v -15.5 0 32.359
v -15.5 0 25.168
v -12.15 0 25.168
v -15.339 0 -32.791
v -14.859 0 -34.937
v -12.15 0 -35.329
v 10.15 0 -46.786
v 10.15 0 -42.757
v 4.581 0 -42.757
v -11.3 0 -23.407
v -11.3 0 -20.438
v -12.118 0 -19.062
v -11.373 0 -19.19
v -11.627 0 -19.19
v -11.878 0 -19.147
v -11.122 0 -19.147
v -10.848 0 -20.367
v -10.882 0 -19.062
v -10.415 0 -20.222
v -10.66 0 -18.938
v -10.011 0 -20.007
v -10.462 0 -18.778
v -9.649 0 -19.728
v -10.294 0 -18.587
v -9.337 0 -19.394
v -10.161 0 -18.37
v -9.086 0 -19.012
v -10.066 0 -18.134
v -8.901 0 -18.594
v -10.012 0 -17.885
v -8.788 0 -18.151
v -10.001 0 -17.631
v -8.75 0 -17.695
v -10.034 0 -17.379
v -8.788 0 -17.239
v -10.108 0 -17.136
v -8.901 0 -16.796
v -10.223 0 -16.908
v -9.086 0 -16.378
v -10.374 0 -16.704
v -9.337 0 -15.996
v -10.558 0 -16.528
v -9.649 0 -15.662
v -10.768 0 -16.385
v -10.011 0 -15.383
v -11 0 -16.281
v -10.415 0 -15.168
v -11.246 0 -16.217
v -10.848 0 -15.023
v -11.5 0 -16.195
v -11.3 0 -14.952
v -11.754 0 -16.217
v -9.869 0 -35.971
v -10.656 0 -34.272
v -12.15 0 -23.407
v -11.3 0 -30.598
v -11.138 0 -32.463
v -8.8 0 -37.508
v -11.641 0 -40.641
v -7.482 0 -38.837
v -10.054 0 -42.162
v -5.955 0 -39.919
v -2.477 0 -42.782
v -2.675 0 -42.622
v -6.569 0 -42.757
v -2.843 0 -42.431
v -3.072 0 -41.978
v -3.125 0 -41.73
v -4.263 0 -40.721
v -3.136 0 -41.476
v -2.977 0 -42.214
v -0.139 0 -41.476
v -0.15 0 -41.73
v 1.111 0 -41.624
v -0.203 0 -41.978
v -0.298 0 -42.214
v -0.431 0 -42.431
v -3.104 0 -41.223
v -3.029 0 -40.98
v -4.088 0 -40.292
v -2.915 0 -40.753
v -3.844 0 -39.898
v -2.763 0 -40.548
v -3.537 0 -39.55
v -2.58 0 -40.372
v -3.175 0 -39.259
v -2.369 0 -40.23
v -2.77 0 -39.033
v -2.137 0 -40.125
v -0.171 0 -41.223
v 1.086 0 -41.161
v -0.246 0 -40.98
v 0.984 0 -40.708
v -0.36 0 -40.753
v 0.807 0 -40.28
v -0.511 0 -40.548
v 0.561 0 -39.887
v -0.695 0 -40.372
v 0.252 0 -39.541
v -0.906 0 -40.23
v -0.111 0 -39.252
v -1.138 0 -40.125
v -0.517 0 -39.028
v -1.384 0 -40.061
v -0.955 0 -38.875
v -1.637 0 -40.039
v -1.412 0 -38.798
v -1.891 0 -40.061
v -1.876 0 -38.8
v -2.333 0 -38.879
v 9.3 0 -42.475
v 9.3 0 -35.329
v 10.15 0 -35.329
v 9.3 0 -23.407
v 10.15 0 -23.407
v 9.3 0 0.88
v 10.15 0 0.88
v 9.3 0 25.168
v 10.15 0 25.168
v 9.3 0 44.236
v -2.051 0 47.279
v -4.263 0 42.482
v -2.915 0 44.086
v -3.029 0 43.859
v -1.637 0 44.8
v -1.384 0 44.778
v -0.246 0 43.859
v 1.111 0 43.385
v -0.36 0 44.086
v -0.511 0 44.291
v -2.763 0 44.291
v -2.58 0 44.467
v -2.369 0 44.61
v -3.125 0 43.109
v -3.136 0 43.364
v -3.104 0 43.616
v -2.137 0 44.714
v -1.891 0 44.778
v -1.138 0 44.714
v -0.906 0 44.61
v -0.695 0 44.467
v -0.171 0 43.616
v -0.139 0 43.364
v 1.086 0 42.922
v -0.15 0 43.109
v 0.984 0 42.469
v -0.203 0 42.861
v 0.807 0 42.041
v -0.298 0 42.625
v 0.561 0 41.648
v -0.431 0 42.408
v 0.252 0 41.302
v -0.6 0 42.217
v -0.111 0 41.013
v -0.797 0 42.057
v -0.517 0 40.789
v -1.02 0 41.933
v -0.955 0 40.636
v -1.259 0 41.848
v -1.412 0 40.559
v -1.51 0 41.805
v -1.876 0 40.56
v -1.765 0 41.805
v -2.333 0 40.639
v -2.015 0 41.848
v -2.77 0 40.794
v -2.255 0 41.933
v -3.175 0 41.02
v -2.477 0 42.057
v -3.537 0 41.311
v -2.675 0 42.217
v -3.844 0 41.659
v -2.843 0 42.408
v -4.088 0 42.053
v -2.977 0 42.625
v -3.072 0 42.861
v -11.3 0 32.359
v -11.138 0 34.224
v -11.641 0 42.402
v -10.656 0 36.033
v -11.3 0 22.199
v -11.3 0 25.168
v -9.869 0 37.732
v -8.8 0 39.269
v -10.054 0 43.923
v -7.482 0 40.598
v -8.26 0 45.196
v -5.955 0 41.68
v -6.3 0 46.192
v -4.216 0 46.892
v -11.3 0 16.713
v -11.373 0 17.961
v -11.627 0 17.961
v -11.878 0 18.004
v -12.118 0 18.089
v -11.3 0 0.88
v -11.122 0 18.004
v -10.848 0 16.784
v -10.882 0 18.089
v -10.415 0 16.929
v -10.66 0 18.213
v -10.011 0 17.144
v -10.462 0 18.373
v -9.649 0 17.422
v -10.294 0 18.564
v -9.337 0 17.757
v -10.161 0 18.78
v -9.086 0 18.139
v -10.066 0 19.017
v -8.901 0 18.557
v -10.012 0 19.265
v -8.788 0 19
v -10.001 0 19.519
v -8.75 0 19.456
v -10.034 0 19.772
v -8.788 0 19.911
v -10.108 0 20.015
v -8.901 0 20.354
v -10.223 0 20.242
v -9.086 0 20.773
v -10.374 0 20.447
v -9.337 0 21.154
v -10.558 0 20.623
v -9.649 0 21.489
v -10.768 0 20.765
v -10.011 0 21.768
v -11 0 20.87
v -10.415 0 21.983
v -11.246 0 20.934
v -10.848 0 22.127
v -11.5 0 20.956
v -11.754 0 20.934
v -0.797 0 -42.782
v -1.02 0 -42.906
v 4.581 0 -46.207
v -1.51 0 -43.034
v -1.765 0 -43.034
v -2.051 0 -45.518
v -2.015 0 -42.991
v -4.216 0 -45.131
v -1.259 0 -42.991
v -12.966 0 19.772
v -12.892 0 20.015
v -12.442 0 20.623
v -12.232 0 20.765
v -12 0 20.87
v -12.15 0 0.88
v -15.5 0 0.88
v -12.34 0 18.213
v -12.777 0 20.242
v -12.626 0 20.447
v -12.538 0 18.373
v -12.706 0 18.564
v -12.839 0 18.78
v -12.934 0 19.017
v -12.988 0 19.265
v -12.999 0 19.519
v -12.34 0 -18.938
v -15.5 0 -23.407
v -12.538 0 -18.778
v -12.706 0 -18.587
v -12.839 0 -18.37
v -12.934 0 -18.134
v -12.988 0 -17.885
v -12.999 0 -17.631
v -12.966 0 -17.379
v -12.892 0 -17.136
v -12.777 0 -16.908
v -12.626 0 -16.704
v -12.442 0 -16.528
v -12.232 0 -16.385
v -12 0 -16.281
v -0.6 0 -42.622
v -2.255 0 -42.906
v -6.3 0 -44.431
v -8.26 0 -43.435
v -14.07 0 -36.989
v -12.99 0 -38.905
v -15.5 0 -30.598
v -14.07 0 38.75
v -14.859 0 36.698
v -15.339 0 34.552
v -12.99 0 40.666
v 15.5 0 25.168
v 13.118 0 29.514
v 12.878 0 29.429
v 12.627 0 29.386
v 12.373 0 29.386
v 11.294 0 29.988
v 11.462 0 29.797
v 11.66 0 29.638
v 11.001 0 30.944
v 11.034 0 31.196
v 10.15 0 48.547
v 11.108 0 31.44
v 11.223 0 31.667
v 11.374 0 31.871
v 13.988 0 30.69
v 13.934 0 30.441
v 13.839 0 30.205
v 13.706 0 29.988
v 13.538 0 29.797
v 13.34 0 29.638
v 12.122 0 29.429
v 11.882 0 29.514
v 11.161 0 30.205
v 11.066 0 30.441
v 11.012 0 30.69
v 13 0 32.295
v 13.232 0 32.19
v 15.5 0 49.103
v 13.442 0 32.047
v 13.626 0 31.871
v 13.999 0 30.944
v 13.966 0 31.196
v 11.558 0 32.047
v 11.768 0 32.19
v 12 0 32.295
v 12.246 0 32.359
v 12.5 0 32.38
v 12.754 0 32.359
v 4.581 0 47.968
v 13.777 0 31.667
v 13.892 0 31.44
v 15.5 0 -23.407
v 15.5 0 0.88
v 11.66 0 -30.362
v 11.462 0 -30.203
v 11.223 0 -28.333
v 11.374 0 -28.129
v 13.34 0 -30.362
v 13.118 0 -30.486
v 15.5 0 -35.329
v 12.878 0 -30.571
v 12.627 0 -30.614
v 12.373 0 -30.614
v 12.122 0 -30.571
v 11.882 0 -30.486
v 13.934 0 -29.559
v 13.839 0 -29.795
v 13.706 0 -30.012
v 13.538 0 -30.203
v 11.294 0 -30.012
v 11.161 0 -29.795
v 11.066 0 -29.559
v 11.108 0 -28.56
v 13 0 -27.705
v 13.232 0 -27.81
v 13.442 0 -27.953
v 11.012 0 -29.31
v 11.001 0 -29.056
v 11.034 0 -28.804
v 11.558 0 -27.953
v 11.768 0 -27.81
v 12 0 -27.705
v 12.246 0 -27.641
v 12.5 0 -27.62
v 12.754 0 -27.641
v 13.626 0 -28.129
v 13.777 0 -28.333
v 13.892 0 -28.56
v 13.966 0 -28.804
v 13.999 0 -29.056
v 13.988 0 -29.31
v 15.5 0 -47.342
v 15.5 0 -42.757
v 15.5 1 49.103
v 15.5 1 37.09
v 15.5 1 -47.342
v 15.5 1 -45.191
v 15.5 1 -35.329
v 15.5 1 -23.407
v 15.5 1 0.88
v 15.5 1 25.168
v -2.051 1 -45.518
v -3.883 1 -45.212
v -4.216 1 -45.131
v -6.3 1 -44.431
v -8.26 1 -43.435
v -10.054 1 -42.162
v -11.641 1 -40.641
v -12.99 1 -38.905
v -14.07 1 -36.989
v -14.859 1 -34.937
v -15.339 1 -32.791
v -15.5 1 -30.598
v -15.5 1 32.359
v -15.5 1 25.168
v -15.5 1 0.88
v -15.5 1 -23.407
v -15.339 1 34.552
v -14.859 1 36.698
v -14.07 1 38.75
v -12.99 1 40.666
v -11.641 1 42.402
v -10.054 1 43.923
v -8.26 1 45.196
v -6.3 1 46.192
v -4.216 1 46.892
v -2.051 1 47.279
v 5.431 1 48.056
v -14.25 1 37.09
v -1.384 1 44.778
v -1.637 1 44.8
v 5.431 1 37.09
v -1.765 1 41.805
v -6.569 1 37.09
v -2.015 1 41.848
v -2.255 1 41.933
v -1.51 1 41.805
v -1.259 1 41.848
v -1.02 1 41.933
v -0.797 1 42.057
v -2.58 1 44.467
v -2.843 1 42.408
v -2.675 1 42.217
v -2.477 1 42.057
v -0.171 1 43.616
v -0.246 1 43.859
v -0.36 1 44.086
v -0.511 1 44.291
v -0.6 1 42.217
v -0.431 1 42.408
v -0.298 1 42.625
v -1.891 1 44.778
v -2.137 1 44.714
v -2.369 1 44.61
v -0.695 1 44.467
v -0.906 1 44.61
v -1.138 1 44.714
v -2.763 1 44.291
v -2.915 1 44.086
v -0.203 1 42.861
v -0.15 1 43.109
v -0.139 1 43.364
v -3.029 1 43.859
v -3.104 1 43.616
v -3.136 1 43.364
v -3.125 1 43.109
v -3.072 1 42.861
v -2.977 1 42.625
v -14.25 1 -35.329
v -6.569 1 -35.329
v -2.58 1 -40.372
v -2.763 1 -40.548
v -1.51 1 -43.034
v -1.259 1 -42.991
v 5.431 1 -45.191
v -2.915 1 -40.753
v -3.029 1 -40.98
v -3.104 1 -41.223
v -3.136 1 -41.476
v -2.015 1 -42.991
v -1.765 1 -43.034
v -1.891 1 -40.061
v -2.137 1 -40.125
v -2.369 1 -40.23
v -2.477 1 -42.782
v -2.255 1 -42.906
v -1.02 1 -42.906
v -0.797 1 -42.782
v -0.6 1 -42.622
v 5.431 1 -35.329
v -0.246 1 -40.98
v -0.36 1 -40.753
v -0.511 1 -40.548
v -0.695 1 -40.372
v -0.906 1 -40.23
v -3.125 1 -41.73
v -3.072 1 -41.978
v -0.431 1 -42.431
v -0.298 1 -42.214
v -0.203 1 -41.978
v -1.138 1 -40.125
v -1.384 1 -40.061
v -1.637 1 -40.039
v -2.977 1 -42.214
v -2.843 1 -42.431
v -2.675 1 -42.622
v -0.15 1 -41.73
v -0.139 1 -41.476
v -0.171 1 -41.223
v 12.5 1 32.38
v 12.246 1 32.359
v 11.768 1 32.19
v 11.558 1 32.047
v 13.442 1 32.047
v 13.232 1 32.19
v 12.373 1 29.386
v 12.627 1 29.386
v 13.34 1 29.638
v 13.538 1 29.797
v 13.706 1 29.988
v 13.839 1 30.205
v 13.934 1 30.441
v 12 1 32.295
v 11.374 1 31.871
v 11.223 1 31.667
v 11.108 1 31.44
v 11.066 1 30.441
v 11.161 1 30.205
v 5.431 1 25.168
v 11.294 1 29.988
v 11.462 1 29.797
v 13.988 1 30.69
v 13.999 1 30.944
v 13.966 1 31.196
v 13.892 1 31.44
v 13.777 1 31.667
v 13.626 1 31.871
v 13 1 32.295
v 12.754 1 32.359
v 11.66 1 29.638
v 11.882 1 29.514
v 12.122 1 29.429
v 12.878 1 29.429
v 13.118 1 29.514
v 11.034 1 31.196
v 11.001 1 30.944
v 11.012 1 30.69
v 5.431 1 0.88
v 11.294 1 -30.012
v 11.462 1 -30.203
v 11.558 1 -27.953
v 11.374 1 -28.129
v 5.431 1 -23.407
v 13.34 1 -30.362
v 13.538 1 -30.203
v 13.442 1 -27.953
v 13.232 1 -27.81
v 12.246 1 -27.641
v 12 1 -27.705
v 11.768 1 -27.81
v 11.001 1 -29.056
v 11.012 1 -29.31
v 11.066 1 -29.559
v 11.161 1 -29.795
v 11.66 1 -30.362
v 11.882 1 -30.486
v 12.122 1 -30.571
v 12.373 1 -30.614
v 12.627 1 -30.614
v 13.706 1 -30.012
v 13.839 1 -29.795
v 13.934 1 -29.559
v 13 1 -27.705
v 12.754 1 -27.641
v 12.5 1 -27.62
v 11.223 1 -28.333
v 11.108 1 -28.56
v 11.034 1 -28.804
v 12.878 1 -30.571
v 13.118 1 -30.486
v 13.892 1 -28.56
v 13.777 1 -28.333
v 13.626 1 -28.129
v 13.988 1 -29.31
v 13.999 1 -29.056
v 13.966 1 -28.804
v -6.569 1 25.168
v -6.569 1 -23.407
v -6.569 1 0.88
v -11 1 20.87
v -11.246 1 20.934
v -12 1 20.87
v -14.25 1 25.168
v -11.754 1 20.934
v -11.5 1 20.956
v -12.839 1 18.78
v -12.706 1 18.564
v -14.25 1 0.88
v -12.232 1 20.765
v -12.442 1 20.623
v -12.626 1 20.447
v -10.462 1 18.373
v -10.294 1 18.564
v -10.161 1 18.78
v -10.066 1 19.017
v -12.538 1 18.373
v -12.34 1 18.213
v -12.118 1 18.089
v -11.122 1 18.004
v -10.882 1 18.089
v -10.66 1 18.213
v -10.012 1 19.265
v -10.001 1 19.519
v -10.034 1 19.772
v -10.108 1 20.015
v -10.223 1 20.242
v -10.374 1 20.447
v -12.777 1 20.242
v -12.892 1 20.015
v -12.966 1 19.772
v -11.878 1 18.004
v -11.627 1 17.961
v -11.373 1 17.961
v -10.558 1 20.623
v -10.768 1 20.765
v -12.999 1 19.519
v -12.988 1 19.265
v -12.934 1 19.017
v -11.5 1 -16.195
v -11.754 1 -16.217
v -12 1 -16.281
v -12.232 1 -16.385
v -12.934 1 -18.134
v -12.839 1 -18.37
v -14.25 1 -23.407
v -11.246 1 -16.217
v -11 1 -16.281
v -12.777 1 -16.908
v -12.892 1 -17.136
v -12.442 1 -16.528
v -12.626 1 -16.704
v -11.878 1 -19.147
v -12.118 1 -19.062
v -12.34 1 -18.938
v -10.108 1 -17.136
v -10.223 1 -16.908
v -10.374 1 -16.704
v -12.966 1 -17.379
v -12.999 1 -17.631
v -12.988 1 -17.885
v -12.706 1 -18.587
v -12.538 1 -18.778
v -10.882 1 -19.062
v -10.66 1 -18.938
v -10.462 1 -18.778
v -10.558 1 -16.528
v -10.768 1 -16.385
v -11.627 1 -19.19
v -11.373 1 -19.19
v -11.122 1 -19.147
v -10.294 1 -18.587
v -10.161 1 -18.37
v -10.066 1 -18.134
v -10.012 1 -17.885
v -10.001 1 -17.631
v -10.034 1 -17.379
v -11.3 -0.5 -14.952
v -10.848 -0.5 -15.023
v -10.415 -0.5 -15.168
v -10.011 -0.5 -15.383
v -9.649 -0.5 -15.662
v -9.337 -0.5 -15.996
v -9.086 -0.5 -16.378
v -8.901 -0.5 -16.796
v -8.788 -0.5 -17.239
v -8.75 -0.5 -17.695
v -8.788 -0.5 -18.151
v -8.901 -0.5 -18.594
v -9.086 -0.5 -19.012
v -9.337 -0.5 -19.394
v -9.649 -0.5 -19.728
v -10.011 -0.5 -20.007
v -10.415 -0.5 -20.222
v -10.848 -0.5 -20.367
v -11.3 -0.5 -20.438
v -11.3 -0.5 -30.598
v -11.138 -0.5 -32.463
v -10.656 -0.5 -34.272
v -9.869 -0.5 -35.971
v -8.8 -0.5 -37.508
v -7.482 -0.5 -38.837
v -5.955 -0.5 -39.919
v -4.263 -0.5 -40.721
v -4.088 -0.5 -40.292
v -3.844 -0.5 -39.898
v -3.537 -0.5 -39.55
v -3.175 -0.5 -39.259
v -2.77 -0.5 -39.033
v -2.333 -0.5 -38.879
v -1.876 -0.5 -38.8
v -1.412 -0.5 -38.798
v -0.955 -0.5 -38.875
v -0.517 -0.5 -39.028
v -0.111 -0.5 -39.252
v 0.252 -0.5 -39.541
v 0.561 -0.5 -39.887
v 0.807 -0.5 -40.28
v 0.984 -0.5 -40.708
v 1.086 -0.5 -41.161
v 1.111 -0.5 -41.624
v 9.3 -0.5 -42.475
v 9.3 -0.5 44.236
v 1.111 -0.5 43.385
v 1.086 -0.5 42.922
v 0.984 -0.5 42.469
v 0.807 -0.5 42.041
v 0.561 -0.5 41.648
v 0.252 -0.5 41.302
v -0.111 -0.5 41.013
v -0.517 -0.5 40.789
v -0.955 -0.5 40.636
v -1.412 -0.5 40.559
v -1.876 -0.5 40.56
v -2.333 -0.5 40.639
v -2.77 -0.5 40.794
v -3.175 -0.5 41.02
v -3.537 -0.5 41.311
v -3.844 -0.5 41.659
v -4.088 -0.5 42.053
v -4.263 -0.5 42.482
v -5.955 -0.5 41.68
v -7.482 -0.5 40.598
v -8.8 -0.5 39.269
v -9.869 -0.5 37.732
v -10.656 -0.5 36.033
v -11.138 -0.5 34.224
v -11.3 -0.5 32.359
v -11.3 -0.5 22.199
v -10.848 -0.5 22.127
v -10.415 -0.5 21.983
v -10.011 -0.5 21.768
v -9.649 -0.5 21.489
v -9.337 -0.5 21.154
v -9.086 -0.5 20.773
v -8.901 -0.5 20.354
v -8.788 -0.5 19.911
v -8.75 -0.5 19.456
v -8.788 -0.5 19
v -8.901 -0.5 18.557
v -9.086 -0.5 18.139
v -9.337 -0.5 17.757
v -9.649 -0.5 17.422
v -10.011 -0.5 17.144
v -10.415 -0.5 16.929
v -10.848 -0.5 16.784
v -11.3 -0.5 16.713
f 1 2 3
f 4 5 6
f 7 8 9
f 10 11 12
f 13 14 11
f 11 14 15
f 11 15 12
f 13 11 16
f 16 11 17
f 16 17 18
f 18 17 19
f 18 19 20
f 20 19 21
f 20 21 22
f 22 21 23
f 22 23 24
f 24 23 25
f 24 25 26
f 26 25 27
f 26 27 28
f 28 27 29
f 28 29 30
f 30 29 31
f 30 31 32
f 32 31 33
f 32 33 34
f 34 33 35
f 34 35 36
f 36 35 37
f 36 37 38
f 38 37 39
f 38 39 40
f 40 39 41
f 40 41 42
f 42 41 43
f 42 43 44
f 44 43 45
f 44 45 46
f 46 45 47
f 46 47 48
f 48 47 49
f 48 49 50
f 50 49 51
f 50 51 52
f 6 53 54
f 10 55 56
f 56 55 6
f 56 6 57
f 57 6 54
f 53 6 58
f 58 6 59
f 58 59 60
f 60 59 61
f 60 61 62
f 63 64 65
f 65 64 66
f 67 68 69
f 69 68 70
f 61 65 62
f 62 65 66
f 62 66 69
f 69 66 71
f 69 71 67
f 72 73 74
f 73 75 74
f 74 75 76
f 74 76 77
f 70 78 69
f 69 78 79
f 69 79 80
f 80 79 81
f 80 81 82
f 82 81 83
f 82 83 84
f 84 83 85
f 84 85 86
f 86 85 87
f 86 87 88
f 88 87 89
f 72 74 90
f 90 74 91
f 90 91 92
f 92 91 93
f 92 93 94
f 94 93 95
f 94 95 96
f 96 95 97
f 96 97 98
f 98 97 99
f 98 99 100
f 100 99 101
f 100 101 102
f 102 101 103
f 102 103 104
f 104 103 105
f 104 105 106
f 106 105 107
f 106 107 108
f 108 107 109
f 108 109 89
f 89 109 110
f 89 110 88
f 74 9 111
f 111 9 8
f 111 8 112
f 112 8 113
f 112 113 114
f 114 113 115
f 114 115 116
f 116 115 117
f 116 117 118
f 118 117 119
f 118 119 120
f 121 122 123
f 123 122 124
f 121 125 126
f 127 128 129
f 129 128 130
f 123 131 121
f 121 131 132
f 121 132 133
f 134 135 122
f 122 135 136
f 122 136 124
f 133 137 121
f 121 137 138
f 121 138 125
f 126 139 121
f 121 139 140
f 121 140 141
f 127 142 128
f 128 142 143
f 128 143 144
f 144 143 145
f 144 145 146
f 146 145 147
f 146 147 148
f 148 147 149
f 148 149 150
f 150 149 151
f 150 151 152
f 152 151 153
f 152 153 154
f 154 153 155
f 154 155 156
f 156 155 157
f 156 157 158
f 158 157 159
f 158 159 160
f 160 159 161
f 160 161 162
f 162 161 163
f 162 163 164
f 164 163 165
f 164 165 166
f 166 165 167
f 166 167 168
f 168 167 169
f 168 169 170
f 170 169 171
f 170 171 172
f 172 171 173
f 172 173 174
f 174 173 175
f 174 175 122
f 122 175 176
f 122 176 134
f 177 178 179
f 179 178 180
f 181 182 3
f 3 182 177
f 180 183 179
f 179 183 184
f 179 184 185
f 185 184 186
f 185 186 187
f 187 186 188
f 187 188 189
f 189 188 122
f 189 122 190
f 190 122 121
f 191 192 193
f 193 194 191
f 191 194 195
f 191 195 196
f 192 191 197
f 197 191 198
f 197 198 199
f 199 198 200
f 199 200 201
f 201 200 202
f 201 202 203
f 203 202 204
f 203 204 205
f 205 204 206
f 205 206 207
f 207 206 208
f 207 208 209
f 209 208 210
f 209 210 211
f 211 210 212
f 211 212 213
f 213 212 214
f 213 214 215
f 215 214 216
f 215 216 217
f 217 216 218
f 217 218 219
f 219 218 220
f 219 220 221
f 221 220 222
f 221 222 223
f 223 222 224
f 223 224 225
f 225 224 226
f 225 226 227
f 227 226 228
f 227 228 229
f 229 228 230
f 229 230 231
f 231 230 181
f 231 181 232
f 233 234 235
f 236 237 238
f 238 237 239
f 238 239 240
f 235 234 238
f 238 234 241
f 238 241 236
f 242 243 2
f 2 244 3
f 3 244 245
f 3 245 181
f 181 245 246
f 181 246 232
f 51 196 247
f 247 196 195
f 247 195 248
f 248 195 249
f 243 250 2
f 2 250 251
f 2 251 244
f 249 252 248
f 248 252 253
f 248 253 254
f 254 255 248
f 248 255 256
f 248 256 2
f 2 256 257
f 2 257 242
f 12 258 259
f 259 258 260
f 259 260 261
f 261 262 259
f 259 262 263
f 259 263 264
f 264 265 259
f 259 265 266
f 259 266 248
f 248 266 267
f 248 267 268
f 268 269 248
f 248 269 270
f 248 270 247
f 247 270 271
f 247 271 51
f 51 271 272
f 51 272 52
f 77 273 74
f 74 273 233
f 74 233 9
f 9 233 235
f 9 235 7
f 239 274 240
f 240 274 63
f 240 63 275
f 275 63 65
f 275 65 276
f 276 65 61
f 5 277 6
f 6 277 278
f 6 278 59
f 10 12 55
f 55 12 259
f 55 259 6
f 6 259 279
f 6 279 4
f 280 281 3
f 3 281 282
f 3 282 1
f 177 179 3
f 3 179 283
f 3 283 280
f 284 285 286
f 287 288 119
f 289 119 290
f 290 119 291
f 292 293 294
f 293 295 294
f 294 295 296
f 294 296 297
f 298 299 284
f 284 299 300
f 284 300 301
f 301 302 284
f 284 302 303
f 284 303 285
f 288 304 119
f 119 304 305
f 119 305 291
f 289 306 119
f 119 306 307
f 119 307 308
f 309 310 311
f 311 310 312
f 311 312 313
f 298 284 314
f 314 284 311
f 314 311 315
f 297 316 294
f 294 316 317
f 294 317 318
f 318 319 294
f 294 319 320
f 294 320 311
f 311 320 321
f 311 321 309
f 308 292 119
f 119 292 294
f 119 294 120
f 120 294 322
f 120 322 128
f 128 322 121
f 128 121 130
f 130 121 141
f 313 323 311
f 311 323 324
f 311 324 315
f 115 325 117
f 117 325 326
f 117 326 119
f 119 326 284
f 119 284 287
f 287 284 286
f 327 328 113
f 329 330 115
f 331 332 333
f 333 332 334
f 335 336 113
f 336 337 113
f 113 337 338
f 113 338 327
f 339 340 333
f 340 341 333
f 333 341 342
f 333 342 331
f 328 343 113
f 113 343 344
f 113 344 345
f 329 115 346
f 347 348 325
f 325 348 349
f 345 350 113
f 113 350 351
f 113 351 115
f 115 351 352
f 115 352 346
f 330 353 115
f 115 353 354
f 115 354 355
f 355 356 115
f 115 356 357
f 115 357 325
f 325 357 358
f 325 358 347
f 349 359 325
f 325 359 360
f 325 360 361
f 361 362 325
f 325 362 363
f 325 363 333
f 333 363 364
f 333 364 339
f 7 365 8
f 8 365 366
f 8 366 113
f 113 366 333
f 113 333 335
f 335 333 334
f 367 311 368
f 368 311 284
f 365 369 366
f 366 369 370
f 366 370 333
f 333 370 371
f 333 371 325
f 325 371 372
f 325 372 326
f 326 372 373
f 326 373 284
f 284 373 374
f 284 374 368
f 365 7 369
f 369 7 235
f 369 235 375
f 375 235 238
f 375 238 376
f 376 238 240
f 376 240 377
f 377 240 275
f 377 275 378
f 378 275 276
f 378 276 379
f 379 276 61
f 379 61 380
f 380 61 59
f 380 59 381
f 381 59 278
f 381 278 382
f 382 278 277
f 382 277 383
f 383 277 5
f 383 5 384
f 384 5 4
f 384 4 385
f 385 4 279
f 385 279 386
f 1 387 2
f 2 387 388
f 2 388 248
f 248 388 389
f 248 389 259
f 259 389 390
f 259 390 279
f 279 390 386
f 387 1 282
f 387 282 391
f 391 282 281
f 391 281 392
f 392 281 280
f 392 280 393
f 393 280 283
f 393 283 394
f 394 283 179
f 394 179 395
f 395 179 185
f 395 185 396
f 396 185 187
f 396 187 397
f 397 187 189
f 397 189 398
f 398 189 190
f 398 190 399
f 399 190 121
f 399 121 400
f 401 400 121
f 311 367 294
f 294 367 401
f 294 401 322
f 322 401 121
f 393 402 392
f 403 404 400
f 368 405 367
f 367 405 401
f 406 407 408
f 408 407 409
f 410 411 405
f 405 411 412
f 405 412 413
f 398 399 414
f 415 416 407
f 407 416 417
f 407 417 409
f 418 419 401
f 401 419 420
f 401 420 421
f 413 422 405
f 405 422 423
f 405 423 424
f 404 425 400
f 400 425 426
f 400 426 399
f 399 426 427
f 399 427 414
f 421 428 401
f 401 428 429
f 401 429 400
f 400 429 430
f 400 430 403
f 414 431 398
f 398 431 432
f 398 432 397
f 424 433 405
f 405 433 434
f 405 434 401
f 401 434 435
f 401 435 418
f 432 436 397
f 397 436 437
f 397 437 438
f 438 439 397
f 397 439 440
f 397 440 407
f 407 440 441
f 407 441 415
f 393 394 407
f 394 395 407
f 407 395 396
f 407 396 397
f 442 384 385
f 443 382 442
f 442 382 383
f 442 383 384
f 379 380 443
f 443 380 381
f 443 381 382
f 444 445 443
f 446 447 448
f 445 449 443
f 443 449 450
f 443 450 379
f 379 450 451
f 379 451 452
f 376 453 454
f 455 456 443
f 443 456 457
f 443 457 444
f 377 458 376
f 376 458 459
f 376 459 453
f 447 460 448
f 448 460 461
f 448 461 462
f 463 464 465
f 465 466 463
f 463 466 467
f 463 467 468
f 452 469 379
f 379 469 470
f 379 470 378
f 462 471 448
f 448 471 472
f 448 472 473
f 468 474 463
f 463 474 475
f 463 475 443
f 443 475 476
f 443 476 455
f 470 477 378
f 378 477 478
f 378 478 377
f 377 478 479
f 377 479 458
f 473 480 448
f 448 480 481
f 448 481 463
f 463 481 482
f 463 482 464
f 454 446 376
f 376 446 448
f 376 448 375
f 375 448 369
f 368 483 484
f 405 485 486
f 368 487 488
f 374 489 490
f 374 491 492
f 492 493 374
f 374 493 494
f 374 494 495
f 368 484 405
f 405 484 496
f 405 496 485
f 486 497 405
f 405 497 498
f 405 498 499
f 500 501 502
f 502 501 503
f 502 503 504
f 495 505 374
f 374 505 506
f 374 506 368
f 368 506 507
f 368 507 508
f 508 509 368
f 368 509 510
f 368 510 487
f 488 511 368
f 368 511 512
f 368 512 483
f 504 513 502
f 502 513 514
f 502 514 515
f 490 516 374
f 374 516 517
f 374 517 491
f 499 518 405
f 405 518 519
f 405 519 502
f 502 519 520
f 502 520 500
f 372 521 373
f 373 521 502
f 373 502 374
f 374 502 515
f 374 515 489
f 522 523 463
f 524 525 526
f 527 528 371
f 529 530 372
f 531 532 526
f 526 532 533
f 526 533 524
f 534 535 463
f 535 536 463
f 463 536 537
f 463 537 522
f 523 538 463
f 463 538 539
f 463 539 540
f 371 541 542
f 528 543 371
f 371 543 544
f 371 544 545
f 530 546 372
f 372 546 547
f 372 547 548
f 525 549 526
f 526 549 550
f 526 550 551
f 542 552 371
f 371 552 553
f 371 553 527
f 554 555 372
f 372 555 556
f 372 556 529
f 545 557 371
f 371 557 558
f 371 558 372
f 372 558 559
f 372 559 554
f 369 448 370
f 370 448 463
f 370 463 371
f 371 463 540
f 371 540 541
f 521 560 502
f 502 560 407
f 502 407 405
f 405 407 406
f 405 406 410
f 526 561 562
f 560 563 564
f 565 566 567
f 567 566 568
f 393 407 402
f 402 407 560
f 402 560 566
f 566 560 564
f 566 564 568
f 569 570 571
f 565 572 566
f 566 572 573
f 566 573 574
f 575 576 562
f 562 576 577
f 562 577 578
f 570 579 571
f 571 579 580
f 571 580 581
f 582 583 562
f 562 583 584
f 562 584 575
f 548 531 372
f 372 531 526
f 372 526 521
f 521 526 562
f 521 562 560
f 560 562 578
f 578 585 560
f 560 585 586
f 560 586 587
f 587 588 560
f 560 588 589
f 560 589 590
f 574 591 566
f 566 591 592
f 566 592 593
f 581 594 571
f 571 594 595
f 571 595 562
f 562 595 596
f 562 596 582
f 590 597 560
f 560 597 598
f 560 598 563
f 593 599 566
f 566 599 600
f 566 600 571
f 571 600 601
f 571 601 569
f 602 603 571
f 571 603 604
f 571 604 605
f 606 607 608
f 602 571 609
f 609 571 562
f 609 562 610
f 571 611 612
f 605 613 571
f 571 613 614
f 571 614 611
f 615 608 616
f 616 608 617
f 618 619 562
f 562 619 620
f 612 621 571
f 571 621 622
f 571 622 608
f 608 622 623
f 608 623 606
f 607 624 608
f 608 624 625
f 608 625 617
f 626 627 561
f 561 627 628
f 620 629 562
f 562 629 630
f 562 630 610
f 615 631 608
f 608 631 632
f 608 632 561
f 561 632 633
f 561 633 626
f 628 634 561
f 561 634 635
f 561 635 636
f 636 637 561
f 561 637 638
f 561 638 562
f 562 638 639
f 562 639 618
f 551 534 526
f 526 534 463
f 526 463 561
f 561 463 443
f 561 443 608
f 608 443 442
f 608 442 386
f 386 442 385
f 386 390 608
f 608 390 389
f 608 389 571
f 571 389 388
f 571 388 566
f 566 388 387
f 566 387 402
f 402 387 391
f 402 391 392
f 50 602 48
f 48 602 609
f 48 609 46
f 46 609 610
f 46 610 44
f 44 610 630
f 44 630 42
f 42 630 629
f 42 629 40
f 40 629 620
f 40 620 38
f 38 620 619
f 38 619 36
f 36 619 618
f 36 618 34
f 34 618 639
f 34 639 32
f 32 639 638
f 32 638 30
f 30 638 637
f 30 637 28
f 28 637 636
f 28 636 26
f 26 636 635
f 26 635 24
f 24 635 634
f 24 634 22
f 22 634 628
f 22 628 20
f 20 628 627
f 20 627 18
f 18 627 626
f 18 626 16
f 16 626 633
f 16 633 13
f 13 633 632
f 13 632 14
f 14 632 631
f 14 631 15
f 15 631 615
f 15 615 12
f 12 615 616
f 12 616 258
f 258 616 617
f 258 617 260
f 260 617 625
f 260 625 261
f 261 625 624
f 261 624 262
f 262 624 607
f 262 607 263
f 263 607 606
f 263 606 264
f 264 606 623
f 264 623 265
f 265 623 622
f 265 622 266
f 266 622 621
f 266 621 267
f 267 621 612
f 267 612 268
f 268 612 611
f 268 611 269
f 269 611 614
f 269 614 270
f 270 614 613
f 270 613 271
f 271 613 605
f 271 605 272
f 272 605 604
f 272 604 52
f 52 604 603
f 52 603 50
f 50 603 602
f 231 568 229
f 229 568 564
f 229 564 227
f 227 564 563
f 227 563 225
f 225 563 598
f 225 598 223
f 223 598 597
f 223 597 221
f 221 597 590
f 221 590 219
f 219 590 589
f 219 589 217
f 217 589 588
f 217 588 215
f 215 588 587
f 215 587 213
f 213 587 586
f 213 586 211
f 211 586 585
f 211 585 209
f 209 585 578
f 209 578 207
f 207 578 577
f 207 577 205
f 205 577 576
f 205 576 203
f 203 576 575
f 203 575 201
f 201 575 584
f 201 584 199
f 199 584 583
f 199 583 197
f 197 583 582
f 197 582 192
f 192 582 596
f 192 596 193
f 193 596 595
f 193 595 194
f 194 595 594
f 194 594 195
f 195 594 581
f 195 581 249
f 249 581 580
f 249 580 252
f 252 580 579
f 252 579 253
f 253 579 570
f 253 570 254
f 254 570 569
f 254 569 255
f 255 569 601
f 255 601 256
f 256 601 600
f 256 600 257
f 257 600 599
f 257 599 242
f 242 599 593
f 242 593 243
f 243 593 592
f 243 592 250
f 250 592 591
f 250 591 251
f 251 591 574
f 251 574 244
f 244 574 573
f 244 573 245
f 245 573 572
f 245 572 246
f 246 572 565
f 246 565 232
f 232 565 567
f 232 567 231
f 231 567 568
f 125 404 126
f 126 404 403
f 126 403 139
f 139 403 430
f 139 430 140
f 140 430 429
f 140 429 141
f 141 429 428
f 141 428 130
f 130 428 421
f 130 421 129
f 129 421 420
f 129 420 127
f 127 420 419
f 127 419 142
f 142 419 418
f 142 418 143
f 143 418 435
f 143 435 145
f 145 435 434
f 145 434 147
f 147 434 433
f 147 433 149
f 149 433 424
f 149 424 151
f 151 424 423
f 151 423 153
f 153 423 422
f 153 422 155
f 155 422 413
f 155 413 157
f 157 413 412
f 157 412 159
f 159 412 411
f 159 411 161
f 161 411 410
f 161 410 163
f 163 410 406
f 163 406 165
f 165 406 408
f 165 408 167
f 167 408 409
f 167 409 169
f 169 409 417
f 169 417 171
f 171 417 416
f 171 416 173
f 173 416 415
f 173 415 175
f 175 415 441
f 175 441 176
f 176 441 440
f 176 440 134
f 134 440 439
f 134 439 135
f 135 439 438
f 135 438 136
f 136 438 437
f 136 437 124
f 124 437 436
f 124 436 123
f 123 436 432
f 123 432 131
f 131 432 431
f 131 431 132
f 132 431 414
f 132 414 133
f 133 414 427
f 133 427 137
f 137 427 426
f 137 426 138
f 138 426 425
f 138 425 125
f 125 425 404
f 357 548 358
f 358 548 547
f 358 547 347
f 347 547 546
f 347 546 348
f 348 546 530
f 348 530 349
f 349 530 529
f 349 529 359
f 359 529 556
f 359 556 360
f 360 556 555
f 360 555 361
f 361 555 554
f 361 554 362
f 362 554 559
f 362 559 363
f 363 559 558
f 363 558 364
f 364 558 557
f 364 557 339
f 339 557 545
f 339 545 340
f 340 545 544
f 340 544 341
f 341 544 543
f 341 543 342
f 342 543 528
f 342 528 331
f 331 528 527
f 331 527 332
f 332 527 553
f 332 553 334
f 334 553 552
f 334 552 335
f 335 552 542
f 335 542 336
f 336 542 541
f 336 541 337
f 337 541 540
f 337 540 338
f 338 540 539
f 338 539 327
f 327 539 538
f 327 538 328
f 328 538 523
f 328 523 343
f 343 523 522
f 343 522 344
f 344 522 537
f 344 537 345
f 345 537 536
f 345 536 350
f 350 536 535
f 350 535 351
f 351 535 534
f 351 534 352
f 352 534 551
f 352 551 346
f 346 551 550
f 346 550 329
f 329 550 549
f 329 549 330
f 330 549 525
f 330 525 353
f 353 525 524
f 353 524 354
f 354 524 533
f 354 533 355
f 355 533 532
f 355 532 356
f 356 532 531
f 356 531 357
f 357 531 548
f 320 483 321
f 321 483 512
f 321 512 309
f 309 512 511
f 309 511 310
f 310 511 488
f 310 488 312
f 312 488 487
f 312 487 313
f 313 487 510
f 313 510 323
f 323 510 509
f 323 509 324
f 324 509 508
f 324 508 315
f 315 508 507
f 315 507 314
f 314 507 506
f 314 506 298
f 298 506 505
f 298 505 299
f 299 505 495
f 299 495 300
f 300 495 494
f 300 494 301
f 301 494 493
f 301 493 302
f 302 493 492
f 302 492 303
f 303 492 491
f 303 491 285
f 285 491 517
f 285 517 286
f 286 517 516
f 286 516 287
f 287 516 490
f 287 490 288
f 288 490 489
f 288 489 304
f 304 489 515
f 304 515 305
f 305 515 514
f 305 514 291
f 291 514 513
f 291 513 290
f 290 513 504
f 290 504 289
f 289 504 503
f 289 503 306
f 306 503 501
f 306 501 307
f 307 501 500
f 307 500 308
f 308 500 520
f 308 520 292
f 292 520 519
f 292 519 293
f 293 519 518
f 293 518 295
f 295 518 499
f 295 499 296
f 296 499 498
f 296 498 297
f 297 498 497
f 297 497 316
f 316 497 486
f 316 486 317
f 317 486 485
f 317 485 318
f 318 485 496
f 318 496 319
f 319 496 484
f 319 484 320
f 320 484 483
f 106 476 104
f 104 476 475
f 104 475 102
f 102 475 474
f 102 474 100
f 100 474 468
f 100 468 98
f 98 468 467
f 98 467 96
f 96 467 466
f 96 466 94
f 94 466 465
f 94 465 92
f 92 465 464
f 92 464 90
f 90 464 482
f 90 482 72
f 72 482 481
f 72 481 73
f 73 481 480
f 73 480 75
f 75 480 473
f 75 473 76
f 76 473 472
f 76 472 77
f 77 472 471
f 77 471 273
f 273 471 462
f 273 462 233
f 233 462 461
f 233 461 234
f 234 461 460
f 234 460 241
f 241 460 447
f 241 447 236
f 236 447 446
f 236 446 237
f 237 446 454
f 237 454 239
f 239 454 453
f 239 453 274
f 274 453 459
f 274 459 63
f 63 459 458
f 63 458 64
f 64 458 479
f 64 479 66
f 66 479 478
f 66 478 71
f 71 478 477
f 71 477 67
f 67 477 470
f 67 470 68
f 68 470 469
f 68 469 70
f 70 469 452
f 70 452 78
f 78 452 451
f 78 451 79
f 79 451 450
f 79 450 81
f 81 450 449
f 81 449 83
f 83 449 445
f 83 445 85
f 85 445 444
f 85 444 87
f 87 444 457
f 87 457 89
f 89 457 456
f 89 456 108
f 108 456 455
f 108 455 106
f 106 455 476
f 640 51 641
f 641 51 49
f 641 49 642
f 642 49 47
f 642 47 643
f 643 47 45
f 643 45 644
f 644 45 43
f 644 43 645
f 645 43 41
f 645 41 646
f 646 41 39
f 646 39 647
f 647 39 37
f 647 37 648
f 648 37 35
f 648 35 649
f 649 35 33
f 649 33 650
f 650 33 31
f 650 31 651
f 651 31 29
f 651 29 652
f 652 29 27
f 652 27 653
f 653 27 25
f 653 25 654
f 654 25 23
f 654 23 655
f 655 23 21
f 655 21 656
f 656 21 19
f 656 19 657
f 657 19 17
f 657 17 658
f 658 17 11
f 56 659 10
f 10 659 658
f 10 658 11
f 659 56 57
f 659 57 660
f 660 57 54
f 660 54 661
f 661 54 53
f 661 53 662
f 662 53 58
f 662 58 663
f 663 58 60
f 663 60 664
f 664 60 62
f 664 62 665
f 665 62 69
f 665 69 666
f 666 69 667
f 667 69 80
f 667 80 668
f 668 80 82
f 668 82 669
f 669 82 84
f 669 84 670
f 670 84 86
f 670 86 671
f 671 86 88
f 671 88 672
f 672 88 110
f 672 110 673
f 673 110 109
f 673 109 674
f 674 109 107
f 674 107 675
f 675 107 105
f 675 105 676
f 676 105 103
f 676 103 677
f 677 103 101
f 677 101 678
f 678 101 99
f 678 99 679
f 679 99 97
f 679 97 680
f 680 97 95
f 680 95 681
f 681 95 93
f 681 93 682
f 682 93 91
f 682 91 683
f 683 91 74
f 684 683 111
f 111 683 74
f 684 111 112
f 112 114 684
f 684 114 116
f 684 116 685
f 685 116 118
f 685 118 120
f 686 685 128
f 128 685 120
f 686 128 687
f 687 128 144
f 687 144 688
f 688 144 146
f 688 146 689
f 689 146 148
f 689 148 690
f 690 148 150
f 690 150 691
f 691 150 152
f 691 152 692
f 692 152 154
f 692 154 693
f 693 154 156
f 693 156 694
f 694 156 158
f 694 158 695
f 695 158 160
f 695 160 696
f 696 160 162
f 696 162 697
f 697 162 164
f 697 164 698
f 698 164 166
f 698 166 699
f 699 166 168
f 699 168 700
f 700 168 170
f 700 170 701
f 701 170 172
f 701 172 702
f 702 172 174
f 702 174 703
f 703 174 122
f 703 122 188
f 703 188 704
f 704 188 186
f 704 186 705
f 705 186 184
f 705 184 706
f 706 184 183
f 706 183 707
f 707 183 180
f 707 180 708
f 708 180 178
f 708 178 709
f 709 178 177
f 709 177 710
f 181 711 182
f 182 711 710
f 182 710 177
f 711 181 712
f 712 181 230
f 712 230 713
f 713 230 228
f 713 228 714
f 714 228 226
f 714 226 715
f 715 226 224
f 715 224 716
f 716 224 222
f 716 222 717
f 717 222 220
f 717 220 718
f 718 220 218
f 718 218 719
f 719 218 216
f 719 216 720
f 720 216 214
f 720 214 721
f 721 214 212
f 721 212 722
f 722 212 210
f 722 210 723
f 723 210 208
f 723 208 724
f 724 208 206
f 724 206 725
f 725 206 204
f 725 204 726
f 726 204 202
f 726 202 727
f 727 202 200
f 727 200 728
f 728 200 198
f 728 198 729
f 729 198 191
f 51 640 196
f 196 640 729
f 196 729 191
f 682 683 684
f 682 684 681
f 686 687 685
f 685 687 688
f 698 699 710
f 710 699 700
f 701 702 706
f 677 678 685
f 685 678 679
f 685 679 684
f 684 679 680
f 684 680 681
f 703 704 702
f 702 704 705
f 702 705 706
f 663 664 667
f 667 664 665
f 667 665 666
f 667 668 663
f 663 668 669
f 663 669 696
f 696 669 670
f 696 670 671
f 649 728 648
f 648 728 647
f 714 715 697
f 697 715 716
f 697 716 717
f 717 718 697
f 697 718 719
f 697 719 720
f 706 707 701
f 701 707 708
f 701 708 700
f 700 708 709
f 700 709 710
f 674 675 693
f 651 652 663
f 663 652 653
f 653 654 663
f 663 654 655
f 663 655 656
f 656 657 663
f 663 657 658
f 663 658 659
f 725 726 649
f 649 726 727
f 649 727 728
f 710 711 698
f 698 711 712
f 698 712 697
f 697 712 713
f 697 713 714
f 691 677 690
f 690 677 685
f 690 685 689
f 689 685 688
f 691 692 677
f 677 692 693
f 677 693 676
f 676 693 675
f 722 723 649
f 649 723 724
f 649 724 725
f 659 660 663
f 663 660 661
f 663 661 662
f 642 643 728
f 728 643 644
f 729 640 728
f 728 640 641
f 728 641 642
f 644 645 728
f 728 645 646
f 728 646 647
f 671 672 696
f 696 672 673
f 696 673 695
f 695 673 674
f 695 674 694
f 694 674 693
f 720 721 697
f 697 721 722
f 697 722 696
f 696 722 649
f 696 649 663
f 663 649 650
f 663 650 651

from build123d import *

# Parameters (mm, degrees)
EXTRUDE_1_DEPTH     = 1
CUT_EXTRUDE_1_REACH = 53.501
SKETCH_2_R          = 1.5
EXTRUDE_2_DEPTH     = 0.5


with BuildPart() as part:
    # 스케치1 → 보스-돌출1 (new body)
    with BuildSketch(Plane(origin=(0, 0, 0), x_dir=(1, 0, 0), z_dir=(0, 1, 0))):
        with BuildLine():
            Line((15.5, 47.342351167), (-2.051046792, 45.517737392))
            ThreePointArc((-2.051046792, 45.517737392), (-11.641492312, 40.641408305), (-15.5, 30.59814444))
            Line((-15.5, 30.59814444), (-15.5, -32.35898666))
            ThreePointArc((-15.5, -32.35898666), (-11.641492312, -42.402250525), (-2.051046792, -47.278579612))
            Line((-2.051046792, -47.278579612), (15.5, -49.103193387))
            Line((15.5, -49.103193387), (15.5, 47.342351167))
        make_face()
    extrude(amount=EXTRUDE_1_DEPTH)

    # 스케치2 → 컷-돌출1 (cut, up to next)
    with BuildSketch(Plane(origin=(0, 1, 0), x_dir=(1, 0, 0), z_dir=(0, 1, 0)), mode=Mode.PRIVATE) as cut_extrude_1_sk1:
        with Locations(Location((-1.637434314, 41.539179271, 0), (0, 0, 270))):
            Circle(SKETCH_2_R)
    cut_extrude_1_tool1 = extrude(cut_extrude_1_sk1.sketch, amount=-CUT_EXTRUDE_1_REACH, mode=Mode.PRIVATE) & part.part
    # 스케치2 → 컷-돌출1 (cut, up to next)
    with BuildSketch(Plane(origin=(0, 1, 0), x_dir=(1, 0, 0), z_dir=(0, 1, 0)), mode=Mode.PRIVATE) as cut_extrude_1_sk2:
        with Locations(Location((-11.5, 17.694952146, 0), (0, 0, 270))):
            Circle(SKETCH_2_R)
    cut_extrude_1_tool2 = extrude(cut_extrude_1_sk2.sketch, amount=-CUT_EXTRUDE_1_REACH, mode=Mode.PRIVATE) & part.part
    # 스케치2 → 컷-돌출1 (cut, up to next)
    with BuildSketch(Plane(origin=(0, 1, 0), x_dir=(1, 0, 0), z_dir=(0, 1, 0)), mode=Mode.PRIVATE) as cut_extrude_1_sk3:
        with Locations(Location((-11.5, -19.455794366, 0), (0, 0, 270))):
            Circle(SKETCH_2_R)
    cut_extrude_1_tool3 = extrude(cut_extrude_1_sk3.sketch, amount=-CUT_EXTRUDE_1_REACH, mode=Mode.PRIVATE) & part.part
    # 스케치2 → 컷-돌출1 (cut, up to next)
    with BuildSketch(Plane(origin=(0, 1, 0), x_dir=(1, 0, 0), z_dir=(0, 1, 0)), mode=Mode.PRIVATE) as cut_extrude_1_sk4:
        with Locations(Location((-1.637434314, -43.300021491, 0), (0, 0, 270))):
            Circle(SKETCH_2_R)
    cut_extrude_1_tool4 = extrude(cut_extrude_1_sk4.sketch, amount=-CUT_EXTRUDE_1_REACH, mode=Mode.PRIVATE) & part.part
    # 스케치2 → 컷-돌출1 (cut, up to next)
    with BuildSketch(Plane(origin=(0, 1, 0), x_dir=(1, 0, 0), z_dir=(0, 1, 0)), mode=Mode.PRIVATE) as cut_extrude_1_sk5:
        with Locations(Location((12.5, 29.11957889, 0), (0, 0, 270))):
            Circle(SKETCH_2_R)
    cut_extrude_1_tool5 = extrude(cut_extrude_1_sk5.sketch, amount=-CUT_EXTRUDE_1_REACH, mode=Mode.PRIVATE) & part.part
    # 스케치2 → 컷-돌출1 (cut, up to next)
    with BuildSketch(Plane(origin=(0, 1, 0), x_dir=(1, 0, 0), z_dir=(0, 1, 0)), mode=Mode.PRIVATE) as cut_extrude_1_sk6:
        with Locations(Location((12.5, -30.88042111, 0), (0, 0, 270))):
            Circle(SKETCH_2_R)
    cut_extrude_1_tool6 = extrude(cut_extrude_1_sk6.sketch, amount=-CUT_EXTRUDE_1_REACH, mode=Mode.PRIVATE) & part.part
    add(cut_extrude_1_tool1.solids().sort_by_distance((-1.637434, 1, -41.539179))[0], mode=Mode.SUBTRACT)
    add(cut_extrude_1_tool2.solids().sort_by_distance((-11.5, 1, -17.694952))[0], mode=Mode.SUBTRACT)
    add(cut_extrude_1_tool3.solids().sort_by_distance((-11.5, 1, 19.455794))[0], mode=Mode.SUBTRACT)
    add(cut_extrude_1_tool4.solids().sort_by_distance((-1.637434, 1, 43.300021))[0], mode=Mode.SUBTRACT)
    add(cut_extrude_1_tool5.solids().sort_by_distance((12.5, 1, -29.119579))[0], mode=Mode.SUBTRACT)
    add(cut_extrude_1_tool6.solids().sort_by_distance((12.5, 1, 30.880421))[0], mode=Mode.SUBTRACT)

    # 스케치3 → 보스-돌출2 (add)
    with BuildSketch(Plane.XZ):
        with BuildLine():
            Line((-11.3, -14.952234515), (-11.3, 16.713076735))
            ThreePointArc((-11.3, 16.713076735), (-8.75, 19.455794366), (-11.3, 22.198511996))
            Line((-11.3, 22.198511996), (-11.3, 32.35898666))
            ThreePointArc((-11.3, 32.35898666), (-9.367936379, 38.523376685), (-4.263017708, 42.482212318))
            ThreePointArc((-4.263017708, 42.482212318), (-1.182011658, 40.587994536), (1.111261685, 43.384699144))
            Line((1.111261685, 43.384699144), (9.3, 44.236003622))
            Line((9.3, 44.236003622), (9.3, -42.475161402))
            Line((9.3, -42.475161402), (1.111261685, -41.623856924))
            ThreePointArc((1.111261685, -41.623856924), (-1.182011658, -38.827152317), (-4.263017708, -40.721370098))
            ThreePointArc((-4.263017708, -40.721370098), (-9.367936379, -36.762534465), (-11.3, -30.59814444))
            Line((-11.3, -30.59814444), (-11.3, -20.437669776))
            ThreePointArc((-11.3, -20.437669776), (-8.75, -17.694952146), (-11.3, -14.952234515))
        make_face()
    extrude(amount=EXTRUDE_2_DEPTH)


solid = part.part
